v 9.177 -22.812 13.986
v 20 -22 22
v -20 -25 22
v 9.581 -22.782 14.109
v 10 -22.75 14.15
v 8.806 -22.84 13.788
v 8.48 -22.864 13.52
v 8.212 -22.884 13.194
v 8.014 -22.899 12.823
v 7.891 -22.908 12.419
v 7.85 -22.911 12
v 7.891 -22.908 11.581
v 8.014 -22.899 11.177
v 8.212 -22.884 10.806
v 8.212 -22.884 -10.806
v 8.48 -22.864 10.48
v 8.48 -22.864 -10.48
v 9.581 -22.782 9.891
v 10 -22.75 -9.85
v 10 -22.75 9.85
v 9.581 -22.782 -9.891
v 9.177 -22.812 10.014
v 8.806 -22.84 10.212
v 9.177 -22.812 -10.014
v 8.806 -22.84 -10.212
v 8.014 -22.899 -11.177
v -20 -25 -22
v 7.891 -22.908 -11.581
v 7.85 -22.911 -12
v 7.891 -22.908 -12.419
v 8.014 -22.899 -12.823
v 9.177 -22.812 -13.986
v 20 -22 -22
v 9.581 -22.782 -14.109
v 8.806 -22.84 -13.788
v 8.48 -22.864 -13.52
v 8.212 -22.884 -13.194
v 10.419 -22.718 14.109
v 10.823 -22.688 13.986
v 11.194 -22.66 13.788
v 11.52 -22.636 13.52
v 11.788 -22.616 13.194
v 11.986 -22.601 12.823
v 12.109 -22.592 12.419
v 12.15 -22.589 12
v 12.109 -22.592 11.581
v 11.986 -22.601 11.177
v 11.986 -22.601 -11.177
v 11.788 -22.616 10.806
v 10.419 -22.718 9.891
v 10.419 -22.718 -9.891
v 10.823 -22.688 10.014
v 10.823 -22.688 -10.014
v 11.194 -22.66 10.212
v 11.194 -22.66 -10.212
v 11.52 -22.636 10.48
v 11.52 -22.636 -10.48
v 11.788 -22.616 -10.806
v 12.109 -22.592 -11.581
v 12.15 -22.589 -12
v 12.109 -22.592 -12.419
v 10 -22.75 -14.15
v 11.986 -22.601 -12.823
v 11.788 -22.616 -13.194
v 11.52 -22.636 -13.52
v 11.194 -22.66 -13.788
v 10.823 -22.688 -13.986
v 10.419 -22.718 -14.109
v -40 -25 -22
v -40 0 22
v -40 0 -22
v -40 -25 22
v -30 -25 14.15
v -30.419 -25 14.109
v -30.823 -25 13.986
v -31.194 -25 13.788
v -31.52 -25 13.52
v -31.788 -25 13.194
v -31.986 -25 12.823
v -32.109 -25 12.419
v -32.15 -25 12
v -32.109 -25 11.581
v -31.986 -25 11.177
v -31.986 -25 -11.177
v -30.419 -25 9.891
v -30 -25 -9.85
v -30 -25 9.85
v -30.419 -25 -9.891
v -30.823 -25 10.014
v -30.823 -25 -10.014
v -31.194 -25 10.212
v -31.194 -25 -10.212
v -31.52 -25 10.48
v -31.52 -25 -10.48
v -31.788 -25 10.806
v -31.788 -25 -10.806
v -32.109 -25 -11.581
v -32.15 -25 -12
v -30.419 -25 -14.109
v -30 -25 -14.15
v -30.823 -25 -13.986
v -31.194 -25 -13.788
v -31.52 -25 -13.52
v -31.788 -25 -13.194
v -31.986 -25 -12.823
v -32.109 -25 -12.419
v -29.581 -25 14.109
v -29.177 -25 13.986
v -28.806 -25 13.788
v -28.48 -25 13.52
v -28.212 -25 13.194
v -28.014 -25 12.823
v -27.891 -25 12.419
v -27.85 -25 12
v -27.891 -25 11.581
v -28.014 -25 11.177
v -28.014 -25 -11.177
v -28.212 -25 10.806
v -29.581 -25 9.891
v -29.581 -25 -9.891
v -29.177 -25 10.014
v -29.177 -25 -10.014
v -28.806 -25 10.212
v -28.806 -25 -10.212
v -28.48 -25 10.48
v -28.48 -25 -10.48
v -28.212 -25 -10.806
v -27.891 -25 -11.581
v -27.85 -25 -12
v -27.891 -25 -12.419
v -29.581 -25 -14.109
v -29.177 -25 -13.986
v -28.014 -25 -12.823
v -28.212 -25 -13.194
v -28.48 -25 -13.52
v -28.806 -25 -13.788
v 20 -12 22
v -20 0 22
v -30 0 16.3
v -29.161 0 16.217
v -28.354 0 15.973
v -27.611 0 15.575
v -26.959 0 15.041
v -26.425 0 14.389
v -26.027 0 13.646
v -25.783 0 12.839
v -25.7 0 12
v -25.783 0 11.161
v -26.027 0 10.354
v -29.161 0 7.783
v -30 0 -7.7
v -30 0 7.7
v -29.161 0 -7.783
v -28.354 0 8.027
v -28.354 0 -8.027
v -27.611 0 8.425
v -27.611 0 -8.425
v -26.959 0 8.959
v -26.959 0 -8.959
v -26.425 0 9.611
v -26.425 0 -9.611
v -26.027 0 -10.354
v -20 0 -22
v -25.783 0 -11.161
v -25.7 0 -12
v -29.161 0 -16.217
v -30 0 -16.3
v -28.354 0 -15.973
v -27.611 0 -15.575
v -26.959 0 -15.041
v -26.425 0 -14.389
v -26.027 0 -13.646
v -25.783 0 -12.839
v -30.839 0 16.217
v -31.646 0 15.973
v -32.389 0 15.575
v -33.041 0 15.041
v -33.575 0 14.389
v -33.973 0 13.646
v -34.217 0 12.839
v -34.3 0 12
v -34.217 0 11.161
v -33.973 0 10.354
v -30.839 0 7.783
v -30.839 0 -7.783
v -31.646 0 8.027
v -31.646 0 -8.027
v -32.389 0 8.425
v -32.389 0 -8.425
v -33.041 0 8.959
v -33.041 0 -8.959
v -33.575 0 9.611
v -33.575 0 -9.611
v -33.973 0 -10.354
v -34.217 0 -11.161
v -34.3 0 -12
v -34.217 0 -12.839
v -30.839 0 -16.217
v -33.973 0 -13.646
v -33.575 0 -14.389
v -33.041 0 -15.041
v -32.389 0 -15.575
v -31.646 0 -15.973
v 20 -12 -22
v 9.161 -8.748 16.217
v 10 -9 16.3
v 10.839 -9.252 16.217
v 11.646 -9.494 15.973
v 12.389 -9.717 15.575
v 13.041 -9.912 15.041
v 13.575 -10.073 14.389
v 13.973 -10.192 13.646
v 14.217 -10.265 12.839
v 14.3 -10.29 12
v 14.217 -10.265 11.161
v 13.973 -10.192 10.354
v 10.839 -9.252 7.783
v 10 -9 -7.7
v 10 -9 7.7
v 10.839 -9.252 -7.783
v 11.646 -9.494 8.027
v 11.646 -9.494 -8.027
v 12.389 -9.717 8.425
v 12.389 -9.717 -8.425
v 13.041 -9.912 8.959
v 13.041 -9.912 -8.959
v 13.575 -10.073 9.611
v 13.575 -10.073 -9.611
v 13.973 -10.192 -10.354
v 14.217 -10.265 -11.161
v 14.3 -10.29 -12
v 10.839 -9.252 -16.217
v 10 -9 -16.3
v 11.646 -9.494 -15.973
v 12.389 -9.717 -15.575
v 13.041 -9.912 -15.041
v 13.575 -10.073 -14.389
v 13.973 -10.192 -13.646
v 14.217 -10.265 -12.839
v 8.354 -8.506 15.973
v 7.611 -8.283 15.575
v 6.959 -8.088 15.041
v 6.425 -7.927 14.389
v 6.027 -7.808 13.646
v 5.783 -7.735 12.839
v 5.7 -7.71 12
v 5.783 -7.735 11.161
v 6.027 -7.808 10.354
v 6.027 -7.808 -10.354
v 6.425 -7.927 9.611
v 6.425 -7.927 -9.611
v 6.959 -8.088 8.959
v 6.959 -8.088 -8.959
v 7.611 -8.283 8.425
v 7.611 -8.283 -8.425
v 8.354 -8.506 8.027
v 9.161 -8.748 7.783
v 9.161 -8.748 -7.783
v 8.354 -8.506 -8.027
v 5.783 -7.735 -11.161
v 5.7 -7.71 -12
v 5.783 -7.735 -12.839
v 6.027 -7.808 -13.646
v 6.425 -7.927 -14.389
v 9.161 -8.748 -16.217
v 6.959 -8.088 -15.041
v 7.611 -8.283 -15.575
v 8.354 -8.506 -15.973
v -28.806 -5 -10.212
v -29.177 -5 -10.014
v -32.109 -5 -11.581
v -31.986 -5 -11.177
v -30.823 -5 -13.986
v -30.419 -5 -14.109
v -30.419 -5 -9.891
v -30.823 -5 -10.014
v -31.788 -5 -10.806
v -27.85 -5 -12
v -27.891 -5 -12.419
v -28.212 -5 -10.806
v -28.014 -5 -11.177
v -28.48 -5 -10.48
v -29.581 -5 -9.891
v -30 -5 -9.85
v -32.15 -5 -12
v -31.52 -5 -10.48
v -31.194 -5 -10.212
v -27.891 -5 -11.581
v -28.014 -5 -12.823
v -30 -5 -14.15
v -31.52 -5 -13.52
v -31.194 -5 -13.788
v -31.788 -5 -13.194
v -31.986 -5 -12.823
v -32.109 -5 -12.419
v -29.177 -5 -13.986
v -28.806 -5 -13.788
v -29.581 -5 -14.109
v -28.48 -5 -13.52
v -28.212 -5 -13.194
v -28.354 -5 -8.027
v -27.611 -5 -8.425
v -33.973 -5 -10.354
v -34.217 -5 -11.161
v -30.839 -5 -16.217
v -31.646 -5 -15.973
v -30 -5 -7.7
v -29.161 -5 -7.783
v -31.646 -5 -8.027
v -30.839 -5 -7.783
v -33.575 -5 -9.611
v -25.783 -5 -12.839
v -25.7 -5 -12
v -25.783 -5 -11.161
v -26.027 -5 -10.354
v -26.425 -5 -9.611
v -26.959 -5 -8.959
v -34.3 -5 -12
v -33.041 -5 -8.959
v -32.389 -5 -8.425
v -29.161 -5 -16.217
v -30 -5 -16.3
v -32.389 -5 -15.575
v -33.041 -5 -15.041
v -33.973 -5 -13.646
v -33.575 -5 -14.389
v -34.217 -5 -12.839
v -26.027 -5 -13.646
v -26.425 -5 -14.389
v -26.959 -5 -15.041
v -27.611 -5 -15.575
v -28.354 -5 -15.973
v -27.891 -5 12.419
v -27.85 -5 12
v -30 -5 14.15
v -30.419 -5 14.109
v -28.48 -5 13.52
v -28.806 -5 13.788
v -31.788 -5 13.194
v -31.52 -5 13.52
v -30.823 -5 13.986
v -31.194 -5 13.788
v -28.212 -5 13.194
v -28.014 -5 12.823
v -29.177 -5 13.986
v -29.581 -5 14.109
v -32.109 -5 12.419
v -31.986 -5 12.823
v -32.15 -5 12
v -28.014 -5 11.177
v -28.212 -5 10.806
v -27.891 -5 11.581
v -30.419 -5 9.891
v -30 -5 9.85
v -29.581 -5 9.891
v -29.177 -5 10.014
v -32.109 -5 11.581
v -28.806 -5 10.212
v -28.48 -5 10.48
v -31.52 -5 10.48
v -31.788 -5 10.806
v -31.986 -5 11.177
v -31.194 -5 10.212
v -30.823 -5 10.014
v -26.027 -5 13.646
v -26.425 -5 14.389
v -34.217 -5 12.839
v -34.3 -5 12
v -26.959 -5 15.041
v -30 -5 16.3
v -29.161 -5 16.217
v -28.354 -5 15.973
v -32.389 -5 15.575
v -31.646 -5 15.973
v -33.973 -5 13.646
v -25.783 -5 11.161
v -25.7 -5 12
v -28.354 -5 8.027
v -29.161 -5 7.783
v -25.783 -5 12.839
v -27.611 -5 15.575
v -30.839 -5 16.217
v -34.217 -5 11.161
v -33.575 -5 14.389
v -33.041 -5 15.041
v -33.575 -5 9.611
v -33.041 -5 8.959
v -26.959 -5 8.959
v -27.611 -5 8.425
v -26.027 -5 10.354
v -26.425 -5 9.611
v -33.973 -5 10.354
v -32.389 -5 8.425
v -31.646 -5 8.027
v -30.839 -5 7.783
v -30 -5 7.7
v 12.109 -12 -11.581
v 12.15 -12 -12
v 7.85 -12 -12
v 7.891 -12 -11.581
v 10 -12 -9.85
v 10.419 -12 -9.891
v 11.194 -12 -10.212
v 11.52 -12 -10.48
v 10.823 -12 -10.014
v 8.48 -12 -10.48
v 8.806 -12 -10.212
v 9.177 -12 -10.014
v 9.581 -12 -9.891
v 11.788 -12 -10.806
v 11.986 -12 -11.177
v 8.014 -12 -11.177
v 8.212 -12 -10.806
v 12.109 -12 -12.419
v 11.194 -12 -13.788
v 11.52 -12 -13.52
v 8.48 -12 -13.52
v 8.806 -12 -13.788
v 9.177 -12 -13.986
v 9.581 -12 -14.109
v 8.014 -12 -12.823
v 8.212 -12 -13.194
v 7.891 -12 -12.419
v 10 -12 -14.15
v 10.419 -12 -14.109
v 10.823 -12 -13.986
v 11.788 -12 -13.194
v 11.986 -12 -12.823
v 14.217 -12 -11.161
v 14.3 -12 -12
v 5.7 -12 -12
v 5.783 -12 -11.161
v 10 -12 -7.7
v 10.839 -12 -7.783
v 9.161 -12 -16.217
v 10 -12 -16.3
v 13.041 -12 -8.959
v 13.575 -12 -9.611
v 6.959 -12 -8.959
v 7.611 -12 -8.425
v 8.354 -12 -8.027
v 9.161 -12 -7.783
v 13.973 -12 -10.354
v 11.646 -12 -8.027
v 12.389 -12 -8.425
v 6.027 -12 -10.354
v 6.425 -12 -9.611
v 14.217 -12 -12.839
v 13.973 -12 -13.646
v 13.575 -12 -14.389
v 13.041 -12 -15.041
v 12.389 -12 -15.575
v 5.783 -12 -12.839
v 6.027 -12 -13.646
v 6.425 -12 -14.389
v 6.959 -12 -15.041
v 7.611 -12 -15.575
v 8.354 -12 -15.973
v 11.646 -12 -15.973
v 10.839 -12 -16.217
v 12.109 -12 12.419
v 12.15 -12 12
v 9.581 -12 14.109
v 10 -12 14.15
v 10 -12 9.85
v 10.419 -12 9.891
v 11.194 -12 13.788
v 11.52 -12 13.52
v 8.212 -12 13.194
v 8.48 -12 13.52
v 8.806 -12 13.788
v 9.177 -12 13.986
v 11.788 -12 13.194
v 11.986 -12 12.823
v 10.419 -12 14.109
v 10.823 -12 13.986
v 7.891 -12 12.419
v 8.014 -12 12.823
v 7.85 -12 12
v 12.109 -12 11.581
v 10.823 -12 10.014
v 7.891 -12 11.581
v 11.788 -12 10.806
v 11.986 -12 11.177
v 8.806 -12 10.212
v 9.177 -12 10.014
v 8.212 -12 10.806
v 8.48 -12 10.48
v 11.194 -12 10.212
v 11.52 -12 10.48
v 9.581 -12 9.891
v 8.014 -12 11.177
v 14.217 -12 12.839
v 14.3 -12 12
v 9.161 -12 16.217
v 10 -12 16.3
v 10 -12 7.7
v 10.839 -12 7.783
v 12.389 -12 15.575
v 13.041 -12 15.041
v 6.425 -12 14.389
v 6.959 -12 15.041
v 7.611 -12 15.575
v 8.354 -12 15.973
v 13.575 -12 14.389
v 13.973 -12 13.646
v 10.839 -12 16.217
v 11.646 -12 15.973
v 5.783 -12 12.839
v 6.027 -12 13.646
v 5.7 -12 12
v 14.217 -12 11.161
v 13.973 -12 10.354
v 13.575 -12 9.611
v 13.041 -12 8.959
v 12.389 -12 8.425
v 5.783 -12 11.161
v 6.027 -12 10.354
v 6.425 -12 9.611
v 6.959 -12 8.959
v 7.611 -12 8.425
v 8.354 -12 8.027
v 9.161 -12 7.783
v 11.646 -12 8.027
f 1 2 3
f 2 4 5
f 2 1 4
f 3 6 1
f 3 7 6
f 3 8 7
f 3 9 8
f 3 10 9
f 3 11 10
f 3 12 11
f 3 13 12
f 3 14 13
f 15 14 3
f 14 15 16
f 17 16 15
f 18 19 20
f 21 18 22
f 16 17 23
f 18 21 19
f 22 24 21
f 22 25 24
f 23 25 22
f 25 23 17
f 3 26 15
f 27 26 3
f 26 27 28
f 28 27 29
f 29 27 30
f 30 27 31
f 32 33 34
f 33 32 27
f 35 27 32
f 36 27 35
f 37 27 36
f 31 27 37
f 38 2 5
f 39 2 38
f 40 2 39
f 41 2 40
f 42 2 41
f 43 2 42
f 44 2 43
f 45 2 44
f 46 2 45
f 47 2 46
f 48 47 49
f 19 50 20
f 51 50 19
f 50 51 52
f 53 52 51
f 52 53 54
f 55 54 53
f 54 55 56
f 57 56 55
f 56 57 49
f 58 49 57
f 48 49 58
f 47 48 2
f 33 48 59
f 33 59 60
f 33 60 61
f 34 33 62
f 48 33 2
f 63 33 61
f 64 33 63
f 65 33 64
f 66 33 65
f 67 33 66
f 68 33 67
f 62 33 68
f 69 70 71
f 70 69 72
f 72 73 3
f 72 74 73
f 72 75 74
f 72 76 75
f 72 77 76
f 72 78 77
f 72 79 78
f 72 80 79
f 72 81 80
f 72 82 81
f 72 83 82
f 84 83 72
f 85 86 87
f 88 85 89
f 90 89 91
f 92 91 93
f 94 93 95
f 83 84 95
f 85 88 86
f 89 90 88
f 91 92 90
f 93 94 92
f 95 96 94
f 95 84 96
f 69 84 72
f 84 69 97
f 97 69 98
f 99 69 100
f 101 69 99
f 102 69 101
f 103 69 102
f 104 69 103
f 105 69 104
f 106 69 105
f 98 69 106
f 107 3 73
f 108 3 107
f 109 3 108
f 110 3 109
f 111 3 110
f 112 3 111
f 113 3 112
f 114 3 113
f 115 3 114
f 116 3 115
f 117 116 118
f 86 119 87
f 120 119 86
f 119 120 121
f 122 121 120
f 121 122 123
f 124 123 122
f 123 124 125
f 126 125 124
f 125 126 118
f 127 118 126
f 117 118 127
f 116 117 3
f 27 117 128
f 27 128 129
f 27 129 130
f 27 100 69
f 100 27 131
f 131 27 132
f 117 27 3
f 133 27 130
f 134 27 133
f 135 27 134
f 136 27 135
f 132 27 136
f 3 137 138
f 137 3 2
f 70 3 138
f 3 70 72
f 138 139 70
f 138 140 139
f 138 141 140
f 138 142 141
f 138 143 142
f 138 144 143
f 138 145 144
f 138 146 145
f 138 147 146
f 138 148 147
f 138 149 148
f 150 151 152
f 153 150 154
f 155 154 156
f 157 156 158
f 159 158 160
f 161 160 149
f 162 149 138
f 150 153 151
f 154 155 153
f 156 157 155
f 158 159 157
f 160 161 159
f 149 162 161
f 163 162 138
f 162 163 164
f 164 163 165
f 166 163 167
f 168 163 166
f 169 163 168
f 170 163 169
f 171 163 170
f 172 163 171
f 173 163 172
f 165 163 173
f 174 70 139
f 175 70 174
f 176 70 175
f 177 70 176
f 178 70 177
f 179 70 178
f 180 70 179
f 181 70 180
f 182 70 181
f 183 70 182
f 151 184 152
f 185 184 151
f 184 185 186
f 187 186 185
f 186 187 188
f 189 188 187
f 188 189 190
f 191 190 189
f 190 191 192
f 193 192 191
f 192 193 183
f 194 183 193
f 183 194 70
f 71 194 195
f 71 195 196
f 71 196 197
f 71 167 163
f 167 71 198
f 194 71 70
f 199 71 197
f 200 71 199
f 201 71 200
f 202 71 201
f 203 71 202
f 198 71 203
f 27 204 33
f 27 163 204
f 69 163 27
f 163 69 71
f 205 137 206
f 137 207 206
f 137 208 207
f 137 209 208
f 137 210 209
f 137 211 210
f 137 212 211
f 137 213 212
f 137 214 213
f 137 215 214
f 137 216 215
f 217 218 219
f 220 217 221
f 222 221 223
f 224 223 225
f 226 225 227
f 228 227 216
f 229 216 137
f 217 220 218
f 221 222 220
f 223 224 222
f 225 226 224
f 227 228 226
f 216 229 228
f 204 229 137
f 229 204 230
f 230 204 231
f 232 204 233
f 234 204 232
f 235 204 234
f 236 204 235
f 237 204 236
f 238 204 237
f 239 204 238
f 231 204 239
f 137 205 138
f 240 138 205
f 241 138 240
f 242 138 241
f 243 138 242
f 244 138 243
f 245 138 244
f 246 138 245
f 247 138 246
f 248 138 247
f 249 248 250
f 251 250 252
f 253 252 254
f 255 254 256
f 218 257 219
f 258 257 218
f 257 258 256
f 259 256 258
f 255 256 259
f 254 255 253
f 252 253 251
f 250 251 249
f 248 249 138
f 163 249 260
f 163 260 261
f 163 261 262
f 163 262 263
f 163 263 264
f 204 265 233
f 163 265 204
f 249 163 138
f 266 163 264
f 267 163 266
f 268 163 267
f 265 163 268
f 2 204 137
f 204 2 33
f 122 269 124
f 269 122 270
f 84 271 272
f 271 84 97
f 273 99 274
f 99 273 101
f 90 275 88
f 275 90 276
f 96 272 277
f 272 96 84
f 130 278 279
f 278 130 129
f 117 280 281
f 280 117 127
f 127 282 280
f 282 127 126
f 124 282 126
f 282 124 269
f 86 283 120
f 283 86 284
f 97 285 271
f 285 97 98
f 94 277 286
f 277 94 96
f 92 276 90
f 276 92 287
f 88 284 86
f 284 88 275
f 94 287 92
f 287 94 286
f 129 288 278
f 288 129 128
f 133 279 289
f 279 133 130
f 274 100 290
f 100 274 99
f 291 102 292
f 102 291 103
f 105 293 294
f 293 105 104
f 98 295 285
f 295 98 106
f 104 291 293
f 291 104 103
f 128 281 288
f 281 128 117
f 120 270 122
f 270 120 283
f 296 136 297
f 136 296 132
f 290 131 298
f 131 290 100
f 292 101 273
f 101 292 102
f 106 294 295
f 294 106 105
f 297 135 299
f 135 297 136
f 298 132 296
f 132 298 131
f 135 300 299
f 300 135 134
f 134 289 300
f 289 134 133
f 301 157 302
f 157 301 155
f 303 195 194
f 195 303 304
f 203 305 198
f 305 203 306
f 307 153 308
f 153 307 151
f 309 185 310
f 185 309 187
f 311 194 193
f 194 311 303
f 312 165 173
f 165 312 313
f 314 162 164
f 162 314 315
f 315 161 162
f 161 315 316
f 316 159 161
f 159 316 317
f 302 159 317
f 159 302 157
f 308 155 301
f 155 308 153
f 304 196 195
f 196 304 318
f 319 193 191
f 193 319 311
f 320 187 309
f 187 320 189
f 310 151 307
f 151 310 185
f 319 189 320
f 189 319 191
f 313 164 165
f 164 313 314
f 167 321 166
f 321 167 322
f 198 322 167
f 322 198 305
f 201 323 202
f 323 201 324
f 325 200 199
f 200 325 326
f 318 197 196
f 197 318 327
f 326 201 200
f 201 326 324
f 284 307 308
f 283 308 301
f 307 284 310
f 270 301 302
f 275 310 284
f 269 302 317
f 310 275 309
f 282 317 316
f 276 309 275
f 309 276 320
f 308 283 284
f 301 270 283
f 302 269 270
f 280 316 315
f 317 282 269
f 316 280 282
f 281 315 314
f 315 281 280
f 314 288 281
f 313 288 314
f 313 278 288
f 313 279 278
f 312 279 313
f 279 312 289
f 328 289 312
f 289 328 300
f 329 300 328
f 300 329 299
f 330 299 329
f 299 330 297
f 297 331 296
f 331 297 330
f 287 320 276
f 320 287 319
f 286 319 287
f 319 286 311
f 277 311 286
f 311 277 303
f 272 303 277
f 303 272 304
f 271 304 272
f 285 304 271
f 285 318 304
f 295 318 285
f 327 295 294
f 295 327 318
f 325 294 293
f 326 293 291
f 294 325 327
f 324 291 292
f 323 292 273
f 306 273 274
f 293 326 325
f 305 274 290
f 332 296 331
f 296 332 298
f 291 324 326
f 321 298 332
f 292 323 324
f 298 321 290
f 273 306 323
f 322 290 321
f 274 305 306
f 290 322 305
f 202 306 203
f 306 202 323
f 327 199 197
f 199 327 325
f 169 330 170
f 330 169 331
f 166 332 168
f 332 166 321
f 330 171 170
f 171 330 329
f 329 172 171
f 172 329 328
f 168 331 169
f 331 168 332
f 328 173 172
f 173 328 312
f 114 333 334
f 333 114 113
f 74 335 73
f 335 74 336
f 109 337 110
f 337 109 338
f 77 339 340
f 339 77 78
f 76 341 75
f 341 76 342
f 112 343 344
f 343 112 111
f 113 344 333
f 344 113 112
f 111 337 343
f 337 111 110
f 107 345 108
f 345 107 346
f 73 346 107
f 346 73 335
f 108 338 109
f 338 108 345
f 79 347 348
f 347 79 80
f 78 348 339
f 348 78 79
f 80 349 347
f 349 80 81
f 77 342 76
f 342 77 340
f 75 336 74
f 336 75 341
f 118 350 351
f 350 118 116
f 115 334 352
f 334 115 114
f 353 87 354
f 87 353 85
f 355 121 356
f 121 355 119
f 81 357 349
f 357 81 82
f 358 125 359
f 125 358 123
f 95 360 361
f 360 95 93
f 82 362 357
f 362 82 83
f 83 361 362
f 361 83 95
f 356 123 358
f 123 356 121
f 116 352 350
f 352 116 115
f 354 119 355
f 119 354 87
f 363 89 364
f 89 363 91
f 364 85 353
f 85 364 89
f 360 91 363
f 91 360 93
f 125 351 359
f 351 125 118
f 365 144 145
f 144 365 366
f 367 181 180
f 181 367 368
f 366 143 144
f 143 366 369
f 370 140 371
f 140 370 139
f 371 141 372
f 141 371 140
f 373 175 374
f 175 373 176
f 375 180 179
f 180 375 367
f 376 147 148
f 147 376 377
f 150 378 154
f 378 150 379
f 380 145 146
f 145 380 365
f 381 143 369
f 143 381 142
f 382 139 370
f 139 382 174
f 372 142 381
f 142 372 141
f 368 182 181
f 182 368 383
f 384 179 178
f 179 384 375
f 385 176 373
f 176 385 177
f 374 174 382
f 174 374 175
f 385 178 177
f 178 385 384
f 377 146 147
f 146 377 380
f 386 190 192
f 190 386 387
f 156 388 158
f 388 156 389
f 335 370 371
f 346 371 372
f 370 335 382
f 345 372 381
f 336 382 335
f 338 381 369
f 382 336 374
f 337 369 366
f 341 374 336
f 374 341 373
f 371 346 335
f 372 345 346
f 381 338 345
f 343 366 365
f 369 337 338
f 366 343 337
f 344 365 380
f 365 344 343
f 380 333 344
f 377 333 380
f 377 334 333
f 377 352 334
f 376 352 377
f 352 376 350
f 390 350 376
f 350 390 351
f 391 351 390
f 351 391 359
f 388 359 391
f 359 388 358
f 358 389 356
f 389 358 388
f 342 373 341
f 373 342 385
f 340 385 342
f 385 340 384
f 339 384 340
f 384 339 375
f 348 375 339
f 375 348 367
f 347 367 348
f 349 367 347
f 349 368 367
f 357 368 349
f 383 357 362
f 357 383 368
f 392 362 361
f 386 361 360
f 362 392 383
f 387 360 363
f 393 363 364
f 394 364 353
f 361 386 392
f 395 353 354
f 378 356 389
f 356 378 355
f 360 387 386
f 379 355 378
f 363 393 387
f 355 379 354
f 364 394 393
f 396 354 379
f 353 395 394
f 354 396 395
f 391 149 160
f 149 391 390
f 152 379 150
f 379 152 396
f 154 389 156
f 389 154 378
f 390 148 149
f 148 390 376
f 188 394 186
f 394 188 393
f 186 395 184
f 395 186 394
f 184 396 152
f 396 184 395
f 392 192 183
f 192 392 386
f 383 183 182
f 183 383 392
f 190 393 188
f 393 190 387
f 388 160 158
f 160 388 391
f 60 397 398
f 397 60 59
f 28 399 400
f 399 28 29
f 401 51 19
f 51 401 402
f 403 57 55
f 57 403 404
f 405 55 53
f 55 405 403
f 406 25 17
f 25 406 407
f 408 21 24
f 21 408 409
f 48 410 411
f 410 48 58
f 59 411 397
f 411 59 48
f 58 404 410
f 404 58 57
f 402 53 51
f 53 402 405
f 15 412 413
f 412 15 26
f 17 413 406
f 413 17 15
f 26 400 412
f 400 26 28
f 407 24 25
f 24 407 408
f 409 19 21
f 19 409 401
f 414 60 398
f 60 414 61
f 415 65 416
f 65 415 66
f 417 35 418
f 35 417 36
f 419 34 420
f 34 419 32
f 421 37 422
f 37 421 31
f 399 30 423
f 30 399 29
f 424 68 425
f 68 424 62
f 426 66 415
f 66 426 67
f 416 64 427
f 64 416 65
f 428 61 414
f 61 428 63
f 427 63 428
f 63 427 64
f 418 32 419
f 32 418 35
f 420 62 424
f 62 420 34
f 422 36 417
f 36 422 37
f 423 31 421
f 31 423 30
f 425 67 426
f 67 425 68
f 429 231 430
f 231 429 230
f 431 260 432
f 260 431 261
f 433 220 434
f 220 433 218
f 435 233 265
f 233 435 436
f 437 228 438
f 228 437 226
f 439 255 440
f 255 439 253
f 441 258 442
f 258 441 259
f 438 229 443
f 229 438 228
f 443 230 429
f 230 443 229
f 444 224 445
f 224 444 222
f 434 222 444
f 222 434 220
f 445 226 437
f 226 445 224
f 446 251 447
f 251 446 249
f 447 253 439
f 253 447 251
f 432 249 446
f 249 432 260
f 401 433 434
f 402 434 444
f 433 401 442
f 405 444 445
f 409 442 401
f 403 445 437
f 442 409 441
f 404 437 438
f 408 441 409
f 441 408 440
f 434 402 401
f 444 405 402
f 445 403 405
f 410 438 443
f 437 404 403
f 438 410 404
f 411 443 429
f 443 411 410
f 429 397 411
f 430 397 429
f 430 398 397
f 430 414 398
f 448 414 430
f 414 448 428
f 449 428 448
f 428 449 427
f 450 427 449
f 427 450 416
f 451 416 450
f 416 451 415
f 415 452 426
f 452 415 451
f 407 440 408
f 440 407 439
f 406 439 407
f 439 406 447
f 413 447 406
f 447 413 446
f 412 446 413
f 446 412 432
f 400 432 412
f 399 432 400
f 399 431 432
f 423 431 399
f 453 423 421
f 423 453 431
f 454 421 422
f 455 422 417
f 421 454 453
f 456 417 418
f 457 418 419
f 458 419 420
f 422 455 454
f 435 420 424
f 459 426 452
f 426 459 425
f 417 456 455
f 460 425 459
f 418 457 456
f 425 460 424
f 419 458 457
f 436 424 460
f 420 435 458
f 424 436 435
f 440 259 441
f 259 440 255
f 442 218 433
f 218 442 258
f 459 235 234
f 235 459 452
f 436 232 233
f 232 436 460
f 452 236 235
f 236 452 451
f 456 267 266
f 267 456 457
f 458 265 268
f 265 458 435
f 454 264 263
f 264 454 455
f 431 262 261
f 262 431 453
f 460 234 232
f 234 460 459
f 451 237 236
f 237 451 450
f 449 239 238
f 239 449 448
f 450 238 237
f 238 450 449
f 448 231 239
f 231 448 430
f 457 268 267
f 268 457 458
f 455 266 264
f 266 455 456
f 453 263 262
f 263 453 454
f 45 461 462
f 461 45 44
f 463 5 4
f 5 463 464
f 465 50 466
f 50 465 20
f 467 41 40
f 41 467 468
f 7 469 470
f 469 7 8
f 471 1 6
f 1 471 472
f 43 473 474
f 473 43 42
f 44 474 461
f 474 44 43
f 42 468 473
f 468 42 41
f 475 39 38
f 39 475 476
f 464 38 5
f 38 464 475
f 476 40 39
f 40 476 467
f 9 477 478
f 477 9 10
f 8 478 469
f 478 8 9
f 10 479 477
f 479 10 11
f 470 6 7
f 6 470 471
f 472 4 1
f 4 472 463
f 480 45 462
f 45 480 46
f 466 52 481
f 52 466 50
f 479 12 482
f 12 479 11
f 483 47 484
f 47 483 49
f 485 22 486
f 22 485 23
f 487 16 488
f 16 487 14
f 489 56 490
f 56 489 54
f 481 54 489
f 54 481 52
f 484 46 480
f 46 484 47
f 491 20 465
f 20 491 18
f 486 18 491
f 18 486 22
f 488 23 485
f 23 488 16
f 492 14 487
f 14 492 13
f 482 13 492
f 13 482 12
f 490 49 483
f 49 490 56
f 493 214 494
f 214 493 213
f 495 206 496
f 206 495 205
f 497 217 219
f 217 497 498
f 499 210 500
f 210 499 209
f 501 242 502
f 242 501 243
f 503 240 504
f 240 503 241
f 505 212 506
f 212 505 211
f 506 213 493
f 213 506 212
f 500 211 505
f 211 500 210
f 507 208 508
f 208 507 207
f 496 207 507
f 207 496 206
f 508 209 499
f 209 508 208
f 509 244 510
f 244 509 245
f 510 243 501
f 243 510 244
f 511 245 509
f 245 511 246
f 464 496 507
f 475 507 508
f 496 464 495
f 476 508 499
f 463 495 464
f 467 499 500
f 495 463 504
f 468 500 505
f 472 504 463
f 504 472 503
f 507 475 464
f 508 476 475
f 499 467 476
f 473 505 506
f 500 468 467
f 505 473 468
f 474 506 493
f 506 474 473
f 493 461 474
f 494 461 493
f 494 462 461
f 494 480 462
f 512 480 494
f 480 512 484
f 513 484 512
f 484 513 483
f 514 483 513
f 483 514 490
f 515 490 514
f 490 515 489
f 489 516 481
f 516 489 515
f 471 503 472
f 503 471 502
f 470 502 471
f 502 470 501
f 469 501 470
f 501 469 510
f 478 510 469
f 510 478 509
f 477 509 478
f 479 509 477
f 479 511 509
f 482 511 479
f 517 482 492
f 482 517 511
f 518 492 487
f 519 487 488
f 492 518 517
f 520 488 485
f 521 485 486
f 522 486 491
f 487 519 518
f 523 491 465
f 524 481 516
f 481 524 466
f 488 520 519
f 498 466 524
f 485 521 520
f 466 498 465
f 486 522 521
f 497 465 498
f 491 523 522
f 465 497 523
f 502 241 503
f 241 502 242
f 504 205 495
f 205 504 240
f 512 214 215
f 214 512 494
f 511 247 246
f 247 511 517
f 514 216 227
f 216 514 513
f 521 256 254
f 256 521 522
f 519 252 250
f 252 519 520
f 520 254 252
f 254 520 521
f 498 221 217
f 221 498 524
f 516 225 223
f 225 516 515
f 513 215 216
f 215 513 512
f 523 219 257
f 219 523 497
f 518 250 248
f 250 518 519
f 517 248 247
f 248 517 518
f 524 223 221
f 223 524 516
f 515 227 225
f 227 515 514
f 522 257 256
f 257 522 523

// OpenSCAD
$fn=32;
y=44;
xA=20;
xB=40;
x=xA+xB;
zA=10;
zB=15;
z=zA+zB;

m4Dia=4.3;
rotate([90,0,0]){
difference(){
hull(){
translate([0,-y/2,zB-3])rotate([0,0,0])cube([xA,y,zA]);
translate([-xB,-y/2,0])cube([xA,y,z]);
}

translate([-xB+xA/2,-y/2+xA/2,0])cylinder(d=m4Dia,h=z);
translate([-xB+xA/2,-y/2+xA/2,0])cylinder(d=m4Dia*2,h=zA/2);

translate([-xB+xA/2,y/2-xA/2,0])cylinder(d=m4Dia,h=z);
translate([-xB+xA/2,y/2-xA/2,0])cylinder(d=m4Dia*2,h=zA/2);

translate([xA/2,-y/2+xA/2,0])cylinder(d=m4Dia,h=z);
translate([xA/2,-y/2+xA/2,0])cylinder(d=m4Dia*2,h=zB-3);

translate([xA/2,y/2-xA/2,0])cylinder(d=m4Dia,h=z);
translate([xA/2,y/2-xA/2,0])cylinder(d=m4Dia*2,h=zB-3);

}
}
